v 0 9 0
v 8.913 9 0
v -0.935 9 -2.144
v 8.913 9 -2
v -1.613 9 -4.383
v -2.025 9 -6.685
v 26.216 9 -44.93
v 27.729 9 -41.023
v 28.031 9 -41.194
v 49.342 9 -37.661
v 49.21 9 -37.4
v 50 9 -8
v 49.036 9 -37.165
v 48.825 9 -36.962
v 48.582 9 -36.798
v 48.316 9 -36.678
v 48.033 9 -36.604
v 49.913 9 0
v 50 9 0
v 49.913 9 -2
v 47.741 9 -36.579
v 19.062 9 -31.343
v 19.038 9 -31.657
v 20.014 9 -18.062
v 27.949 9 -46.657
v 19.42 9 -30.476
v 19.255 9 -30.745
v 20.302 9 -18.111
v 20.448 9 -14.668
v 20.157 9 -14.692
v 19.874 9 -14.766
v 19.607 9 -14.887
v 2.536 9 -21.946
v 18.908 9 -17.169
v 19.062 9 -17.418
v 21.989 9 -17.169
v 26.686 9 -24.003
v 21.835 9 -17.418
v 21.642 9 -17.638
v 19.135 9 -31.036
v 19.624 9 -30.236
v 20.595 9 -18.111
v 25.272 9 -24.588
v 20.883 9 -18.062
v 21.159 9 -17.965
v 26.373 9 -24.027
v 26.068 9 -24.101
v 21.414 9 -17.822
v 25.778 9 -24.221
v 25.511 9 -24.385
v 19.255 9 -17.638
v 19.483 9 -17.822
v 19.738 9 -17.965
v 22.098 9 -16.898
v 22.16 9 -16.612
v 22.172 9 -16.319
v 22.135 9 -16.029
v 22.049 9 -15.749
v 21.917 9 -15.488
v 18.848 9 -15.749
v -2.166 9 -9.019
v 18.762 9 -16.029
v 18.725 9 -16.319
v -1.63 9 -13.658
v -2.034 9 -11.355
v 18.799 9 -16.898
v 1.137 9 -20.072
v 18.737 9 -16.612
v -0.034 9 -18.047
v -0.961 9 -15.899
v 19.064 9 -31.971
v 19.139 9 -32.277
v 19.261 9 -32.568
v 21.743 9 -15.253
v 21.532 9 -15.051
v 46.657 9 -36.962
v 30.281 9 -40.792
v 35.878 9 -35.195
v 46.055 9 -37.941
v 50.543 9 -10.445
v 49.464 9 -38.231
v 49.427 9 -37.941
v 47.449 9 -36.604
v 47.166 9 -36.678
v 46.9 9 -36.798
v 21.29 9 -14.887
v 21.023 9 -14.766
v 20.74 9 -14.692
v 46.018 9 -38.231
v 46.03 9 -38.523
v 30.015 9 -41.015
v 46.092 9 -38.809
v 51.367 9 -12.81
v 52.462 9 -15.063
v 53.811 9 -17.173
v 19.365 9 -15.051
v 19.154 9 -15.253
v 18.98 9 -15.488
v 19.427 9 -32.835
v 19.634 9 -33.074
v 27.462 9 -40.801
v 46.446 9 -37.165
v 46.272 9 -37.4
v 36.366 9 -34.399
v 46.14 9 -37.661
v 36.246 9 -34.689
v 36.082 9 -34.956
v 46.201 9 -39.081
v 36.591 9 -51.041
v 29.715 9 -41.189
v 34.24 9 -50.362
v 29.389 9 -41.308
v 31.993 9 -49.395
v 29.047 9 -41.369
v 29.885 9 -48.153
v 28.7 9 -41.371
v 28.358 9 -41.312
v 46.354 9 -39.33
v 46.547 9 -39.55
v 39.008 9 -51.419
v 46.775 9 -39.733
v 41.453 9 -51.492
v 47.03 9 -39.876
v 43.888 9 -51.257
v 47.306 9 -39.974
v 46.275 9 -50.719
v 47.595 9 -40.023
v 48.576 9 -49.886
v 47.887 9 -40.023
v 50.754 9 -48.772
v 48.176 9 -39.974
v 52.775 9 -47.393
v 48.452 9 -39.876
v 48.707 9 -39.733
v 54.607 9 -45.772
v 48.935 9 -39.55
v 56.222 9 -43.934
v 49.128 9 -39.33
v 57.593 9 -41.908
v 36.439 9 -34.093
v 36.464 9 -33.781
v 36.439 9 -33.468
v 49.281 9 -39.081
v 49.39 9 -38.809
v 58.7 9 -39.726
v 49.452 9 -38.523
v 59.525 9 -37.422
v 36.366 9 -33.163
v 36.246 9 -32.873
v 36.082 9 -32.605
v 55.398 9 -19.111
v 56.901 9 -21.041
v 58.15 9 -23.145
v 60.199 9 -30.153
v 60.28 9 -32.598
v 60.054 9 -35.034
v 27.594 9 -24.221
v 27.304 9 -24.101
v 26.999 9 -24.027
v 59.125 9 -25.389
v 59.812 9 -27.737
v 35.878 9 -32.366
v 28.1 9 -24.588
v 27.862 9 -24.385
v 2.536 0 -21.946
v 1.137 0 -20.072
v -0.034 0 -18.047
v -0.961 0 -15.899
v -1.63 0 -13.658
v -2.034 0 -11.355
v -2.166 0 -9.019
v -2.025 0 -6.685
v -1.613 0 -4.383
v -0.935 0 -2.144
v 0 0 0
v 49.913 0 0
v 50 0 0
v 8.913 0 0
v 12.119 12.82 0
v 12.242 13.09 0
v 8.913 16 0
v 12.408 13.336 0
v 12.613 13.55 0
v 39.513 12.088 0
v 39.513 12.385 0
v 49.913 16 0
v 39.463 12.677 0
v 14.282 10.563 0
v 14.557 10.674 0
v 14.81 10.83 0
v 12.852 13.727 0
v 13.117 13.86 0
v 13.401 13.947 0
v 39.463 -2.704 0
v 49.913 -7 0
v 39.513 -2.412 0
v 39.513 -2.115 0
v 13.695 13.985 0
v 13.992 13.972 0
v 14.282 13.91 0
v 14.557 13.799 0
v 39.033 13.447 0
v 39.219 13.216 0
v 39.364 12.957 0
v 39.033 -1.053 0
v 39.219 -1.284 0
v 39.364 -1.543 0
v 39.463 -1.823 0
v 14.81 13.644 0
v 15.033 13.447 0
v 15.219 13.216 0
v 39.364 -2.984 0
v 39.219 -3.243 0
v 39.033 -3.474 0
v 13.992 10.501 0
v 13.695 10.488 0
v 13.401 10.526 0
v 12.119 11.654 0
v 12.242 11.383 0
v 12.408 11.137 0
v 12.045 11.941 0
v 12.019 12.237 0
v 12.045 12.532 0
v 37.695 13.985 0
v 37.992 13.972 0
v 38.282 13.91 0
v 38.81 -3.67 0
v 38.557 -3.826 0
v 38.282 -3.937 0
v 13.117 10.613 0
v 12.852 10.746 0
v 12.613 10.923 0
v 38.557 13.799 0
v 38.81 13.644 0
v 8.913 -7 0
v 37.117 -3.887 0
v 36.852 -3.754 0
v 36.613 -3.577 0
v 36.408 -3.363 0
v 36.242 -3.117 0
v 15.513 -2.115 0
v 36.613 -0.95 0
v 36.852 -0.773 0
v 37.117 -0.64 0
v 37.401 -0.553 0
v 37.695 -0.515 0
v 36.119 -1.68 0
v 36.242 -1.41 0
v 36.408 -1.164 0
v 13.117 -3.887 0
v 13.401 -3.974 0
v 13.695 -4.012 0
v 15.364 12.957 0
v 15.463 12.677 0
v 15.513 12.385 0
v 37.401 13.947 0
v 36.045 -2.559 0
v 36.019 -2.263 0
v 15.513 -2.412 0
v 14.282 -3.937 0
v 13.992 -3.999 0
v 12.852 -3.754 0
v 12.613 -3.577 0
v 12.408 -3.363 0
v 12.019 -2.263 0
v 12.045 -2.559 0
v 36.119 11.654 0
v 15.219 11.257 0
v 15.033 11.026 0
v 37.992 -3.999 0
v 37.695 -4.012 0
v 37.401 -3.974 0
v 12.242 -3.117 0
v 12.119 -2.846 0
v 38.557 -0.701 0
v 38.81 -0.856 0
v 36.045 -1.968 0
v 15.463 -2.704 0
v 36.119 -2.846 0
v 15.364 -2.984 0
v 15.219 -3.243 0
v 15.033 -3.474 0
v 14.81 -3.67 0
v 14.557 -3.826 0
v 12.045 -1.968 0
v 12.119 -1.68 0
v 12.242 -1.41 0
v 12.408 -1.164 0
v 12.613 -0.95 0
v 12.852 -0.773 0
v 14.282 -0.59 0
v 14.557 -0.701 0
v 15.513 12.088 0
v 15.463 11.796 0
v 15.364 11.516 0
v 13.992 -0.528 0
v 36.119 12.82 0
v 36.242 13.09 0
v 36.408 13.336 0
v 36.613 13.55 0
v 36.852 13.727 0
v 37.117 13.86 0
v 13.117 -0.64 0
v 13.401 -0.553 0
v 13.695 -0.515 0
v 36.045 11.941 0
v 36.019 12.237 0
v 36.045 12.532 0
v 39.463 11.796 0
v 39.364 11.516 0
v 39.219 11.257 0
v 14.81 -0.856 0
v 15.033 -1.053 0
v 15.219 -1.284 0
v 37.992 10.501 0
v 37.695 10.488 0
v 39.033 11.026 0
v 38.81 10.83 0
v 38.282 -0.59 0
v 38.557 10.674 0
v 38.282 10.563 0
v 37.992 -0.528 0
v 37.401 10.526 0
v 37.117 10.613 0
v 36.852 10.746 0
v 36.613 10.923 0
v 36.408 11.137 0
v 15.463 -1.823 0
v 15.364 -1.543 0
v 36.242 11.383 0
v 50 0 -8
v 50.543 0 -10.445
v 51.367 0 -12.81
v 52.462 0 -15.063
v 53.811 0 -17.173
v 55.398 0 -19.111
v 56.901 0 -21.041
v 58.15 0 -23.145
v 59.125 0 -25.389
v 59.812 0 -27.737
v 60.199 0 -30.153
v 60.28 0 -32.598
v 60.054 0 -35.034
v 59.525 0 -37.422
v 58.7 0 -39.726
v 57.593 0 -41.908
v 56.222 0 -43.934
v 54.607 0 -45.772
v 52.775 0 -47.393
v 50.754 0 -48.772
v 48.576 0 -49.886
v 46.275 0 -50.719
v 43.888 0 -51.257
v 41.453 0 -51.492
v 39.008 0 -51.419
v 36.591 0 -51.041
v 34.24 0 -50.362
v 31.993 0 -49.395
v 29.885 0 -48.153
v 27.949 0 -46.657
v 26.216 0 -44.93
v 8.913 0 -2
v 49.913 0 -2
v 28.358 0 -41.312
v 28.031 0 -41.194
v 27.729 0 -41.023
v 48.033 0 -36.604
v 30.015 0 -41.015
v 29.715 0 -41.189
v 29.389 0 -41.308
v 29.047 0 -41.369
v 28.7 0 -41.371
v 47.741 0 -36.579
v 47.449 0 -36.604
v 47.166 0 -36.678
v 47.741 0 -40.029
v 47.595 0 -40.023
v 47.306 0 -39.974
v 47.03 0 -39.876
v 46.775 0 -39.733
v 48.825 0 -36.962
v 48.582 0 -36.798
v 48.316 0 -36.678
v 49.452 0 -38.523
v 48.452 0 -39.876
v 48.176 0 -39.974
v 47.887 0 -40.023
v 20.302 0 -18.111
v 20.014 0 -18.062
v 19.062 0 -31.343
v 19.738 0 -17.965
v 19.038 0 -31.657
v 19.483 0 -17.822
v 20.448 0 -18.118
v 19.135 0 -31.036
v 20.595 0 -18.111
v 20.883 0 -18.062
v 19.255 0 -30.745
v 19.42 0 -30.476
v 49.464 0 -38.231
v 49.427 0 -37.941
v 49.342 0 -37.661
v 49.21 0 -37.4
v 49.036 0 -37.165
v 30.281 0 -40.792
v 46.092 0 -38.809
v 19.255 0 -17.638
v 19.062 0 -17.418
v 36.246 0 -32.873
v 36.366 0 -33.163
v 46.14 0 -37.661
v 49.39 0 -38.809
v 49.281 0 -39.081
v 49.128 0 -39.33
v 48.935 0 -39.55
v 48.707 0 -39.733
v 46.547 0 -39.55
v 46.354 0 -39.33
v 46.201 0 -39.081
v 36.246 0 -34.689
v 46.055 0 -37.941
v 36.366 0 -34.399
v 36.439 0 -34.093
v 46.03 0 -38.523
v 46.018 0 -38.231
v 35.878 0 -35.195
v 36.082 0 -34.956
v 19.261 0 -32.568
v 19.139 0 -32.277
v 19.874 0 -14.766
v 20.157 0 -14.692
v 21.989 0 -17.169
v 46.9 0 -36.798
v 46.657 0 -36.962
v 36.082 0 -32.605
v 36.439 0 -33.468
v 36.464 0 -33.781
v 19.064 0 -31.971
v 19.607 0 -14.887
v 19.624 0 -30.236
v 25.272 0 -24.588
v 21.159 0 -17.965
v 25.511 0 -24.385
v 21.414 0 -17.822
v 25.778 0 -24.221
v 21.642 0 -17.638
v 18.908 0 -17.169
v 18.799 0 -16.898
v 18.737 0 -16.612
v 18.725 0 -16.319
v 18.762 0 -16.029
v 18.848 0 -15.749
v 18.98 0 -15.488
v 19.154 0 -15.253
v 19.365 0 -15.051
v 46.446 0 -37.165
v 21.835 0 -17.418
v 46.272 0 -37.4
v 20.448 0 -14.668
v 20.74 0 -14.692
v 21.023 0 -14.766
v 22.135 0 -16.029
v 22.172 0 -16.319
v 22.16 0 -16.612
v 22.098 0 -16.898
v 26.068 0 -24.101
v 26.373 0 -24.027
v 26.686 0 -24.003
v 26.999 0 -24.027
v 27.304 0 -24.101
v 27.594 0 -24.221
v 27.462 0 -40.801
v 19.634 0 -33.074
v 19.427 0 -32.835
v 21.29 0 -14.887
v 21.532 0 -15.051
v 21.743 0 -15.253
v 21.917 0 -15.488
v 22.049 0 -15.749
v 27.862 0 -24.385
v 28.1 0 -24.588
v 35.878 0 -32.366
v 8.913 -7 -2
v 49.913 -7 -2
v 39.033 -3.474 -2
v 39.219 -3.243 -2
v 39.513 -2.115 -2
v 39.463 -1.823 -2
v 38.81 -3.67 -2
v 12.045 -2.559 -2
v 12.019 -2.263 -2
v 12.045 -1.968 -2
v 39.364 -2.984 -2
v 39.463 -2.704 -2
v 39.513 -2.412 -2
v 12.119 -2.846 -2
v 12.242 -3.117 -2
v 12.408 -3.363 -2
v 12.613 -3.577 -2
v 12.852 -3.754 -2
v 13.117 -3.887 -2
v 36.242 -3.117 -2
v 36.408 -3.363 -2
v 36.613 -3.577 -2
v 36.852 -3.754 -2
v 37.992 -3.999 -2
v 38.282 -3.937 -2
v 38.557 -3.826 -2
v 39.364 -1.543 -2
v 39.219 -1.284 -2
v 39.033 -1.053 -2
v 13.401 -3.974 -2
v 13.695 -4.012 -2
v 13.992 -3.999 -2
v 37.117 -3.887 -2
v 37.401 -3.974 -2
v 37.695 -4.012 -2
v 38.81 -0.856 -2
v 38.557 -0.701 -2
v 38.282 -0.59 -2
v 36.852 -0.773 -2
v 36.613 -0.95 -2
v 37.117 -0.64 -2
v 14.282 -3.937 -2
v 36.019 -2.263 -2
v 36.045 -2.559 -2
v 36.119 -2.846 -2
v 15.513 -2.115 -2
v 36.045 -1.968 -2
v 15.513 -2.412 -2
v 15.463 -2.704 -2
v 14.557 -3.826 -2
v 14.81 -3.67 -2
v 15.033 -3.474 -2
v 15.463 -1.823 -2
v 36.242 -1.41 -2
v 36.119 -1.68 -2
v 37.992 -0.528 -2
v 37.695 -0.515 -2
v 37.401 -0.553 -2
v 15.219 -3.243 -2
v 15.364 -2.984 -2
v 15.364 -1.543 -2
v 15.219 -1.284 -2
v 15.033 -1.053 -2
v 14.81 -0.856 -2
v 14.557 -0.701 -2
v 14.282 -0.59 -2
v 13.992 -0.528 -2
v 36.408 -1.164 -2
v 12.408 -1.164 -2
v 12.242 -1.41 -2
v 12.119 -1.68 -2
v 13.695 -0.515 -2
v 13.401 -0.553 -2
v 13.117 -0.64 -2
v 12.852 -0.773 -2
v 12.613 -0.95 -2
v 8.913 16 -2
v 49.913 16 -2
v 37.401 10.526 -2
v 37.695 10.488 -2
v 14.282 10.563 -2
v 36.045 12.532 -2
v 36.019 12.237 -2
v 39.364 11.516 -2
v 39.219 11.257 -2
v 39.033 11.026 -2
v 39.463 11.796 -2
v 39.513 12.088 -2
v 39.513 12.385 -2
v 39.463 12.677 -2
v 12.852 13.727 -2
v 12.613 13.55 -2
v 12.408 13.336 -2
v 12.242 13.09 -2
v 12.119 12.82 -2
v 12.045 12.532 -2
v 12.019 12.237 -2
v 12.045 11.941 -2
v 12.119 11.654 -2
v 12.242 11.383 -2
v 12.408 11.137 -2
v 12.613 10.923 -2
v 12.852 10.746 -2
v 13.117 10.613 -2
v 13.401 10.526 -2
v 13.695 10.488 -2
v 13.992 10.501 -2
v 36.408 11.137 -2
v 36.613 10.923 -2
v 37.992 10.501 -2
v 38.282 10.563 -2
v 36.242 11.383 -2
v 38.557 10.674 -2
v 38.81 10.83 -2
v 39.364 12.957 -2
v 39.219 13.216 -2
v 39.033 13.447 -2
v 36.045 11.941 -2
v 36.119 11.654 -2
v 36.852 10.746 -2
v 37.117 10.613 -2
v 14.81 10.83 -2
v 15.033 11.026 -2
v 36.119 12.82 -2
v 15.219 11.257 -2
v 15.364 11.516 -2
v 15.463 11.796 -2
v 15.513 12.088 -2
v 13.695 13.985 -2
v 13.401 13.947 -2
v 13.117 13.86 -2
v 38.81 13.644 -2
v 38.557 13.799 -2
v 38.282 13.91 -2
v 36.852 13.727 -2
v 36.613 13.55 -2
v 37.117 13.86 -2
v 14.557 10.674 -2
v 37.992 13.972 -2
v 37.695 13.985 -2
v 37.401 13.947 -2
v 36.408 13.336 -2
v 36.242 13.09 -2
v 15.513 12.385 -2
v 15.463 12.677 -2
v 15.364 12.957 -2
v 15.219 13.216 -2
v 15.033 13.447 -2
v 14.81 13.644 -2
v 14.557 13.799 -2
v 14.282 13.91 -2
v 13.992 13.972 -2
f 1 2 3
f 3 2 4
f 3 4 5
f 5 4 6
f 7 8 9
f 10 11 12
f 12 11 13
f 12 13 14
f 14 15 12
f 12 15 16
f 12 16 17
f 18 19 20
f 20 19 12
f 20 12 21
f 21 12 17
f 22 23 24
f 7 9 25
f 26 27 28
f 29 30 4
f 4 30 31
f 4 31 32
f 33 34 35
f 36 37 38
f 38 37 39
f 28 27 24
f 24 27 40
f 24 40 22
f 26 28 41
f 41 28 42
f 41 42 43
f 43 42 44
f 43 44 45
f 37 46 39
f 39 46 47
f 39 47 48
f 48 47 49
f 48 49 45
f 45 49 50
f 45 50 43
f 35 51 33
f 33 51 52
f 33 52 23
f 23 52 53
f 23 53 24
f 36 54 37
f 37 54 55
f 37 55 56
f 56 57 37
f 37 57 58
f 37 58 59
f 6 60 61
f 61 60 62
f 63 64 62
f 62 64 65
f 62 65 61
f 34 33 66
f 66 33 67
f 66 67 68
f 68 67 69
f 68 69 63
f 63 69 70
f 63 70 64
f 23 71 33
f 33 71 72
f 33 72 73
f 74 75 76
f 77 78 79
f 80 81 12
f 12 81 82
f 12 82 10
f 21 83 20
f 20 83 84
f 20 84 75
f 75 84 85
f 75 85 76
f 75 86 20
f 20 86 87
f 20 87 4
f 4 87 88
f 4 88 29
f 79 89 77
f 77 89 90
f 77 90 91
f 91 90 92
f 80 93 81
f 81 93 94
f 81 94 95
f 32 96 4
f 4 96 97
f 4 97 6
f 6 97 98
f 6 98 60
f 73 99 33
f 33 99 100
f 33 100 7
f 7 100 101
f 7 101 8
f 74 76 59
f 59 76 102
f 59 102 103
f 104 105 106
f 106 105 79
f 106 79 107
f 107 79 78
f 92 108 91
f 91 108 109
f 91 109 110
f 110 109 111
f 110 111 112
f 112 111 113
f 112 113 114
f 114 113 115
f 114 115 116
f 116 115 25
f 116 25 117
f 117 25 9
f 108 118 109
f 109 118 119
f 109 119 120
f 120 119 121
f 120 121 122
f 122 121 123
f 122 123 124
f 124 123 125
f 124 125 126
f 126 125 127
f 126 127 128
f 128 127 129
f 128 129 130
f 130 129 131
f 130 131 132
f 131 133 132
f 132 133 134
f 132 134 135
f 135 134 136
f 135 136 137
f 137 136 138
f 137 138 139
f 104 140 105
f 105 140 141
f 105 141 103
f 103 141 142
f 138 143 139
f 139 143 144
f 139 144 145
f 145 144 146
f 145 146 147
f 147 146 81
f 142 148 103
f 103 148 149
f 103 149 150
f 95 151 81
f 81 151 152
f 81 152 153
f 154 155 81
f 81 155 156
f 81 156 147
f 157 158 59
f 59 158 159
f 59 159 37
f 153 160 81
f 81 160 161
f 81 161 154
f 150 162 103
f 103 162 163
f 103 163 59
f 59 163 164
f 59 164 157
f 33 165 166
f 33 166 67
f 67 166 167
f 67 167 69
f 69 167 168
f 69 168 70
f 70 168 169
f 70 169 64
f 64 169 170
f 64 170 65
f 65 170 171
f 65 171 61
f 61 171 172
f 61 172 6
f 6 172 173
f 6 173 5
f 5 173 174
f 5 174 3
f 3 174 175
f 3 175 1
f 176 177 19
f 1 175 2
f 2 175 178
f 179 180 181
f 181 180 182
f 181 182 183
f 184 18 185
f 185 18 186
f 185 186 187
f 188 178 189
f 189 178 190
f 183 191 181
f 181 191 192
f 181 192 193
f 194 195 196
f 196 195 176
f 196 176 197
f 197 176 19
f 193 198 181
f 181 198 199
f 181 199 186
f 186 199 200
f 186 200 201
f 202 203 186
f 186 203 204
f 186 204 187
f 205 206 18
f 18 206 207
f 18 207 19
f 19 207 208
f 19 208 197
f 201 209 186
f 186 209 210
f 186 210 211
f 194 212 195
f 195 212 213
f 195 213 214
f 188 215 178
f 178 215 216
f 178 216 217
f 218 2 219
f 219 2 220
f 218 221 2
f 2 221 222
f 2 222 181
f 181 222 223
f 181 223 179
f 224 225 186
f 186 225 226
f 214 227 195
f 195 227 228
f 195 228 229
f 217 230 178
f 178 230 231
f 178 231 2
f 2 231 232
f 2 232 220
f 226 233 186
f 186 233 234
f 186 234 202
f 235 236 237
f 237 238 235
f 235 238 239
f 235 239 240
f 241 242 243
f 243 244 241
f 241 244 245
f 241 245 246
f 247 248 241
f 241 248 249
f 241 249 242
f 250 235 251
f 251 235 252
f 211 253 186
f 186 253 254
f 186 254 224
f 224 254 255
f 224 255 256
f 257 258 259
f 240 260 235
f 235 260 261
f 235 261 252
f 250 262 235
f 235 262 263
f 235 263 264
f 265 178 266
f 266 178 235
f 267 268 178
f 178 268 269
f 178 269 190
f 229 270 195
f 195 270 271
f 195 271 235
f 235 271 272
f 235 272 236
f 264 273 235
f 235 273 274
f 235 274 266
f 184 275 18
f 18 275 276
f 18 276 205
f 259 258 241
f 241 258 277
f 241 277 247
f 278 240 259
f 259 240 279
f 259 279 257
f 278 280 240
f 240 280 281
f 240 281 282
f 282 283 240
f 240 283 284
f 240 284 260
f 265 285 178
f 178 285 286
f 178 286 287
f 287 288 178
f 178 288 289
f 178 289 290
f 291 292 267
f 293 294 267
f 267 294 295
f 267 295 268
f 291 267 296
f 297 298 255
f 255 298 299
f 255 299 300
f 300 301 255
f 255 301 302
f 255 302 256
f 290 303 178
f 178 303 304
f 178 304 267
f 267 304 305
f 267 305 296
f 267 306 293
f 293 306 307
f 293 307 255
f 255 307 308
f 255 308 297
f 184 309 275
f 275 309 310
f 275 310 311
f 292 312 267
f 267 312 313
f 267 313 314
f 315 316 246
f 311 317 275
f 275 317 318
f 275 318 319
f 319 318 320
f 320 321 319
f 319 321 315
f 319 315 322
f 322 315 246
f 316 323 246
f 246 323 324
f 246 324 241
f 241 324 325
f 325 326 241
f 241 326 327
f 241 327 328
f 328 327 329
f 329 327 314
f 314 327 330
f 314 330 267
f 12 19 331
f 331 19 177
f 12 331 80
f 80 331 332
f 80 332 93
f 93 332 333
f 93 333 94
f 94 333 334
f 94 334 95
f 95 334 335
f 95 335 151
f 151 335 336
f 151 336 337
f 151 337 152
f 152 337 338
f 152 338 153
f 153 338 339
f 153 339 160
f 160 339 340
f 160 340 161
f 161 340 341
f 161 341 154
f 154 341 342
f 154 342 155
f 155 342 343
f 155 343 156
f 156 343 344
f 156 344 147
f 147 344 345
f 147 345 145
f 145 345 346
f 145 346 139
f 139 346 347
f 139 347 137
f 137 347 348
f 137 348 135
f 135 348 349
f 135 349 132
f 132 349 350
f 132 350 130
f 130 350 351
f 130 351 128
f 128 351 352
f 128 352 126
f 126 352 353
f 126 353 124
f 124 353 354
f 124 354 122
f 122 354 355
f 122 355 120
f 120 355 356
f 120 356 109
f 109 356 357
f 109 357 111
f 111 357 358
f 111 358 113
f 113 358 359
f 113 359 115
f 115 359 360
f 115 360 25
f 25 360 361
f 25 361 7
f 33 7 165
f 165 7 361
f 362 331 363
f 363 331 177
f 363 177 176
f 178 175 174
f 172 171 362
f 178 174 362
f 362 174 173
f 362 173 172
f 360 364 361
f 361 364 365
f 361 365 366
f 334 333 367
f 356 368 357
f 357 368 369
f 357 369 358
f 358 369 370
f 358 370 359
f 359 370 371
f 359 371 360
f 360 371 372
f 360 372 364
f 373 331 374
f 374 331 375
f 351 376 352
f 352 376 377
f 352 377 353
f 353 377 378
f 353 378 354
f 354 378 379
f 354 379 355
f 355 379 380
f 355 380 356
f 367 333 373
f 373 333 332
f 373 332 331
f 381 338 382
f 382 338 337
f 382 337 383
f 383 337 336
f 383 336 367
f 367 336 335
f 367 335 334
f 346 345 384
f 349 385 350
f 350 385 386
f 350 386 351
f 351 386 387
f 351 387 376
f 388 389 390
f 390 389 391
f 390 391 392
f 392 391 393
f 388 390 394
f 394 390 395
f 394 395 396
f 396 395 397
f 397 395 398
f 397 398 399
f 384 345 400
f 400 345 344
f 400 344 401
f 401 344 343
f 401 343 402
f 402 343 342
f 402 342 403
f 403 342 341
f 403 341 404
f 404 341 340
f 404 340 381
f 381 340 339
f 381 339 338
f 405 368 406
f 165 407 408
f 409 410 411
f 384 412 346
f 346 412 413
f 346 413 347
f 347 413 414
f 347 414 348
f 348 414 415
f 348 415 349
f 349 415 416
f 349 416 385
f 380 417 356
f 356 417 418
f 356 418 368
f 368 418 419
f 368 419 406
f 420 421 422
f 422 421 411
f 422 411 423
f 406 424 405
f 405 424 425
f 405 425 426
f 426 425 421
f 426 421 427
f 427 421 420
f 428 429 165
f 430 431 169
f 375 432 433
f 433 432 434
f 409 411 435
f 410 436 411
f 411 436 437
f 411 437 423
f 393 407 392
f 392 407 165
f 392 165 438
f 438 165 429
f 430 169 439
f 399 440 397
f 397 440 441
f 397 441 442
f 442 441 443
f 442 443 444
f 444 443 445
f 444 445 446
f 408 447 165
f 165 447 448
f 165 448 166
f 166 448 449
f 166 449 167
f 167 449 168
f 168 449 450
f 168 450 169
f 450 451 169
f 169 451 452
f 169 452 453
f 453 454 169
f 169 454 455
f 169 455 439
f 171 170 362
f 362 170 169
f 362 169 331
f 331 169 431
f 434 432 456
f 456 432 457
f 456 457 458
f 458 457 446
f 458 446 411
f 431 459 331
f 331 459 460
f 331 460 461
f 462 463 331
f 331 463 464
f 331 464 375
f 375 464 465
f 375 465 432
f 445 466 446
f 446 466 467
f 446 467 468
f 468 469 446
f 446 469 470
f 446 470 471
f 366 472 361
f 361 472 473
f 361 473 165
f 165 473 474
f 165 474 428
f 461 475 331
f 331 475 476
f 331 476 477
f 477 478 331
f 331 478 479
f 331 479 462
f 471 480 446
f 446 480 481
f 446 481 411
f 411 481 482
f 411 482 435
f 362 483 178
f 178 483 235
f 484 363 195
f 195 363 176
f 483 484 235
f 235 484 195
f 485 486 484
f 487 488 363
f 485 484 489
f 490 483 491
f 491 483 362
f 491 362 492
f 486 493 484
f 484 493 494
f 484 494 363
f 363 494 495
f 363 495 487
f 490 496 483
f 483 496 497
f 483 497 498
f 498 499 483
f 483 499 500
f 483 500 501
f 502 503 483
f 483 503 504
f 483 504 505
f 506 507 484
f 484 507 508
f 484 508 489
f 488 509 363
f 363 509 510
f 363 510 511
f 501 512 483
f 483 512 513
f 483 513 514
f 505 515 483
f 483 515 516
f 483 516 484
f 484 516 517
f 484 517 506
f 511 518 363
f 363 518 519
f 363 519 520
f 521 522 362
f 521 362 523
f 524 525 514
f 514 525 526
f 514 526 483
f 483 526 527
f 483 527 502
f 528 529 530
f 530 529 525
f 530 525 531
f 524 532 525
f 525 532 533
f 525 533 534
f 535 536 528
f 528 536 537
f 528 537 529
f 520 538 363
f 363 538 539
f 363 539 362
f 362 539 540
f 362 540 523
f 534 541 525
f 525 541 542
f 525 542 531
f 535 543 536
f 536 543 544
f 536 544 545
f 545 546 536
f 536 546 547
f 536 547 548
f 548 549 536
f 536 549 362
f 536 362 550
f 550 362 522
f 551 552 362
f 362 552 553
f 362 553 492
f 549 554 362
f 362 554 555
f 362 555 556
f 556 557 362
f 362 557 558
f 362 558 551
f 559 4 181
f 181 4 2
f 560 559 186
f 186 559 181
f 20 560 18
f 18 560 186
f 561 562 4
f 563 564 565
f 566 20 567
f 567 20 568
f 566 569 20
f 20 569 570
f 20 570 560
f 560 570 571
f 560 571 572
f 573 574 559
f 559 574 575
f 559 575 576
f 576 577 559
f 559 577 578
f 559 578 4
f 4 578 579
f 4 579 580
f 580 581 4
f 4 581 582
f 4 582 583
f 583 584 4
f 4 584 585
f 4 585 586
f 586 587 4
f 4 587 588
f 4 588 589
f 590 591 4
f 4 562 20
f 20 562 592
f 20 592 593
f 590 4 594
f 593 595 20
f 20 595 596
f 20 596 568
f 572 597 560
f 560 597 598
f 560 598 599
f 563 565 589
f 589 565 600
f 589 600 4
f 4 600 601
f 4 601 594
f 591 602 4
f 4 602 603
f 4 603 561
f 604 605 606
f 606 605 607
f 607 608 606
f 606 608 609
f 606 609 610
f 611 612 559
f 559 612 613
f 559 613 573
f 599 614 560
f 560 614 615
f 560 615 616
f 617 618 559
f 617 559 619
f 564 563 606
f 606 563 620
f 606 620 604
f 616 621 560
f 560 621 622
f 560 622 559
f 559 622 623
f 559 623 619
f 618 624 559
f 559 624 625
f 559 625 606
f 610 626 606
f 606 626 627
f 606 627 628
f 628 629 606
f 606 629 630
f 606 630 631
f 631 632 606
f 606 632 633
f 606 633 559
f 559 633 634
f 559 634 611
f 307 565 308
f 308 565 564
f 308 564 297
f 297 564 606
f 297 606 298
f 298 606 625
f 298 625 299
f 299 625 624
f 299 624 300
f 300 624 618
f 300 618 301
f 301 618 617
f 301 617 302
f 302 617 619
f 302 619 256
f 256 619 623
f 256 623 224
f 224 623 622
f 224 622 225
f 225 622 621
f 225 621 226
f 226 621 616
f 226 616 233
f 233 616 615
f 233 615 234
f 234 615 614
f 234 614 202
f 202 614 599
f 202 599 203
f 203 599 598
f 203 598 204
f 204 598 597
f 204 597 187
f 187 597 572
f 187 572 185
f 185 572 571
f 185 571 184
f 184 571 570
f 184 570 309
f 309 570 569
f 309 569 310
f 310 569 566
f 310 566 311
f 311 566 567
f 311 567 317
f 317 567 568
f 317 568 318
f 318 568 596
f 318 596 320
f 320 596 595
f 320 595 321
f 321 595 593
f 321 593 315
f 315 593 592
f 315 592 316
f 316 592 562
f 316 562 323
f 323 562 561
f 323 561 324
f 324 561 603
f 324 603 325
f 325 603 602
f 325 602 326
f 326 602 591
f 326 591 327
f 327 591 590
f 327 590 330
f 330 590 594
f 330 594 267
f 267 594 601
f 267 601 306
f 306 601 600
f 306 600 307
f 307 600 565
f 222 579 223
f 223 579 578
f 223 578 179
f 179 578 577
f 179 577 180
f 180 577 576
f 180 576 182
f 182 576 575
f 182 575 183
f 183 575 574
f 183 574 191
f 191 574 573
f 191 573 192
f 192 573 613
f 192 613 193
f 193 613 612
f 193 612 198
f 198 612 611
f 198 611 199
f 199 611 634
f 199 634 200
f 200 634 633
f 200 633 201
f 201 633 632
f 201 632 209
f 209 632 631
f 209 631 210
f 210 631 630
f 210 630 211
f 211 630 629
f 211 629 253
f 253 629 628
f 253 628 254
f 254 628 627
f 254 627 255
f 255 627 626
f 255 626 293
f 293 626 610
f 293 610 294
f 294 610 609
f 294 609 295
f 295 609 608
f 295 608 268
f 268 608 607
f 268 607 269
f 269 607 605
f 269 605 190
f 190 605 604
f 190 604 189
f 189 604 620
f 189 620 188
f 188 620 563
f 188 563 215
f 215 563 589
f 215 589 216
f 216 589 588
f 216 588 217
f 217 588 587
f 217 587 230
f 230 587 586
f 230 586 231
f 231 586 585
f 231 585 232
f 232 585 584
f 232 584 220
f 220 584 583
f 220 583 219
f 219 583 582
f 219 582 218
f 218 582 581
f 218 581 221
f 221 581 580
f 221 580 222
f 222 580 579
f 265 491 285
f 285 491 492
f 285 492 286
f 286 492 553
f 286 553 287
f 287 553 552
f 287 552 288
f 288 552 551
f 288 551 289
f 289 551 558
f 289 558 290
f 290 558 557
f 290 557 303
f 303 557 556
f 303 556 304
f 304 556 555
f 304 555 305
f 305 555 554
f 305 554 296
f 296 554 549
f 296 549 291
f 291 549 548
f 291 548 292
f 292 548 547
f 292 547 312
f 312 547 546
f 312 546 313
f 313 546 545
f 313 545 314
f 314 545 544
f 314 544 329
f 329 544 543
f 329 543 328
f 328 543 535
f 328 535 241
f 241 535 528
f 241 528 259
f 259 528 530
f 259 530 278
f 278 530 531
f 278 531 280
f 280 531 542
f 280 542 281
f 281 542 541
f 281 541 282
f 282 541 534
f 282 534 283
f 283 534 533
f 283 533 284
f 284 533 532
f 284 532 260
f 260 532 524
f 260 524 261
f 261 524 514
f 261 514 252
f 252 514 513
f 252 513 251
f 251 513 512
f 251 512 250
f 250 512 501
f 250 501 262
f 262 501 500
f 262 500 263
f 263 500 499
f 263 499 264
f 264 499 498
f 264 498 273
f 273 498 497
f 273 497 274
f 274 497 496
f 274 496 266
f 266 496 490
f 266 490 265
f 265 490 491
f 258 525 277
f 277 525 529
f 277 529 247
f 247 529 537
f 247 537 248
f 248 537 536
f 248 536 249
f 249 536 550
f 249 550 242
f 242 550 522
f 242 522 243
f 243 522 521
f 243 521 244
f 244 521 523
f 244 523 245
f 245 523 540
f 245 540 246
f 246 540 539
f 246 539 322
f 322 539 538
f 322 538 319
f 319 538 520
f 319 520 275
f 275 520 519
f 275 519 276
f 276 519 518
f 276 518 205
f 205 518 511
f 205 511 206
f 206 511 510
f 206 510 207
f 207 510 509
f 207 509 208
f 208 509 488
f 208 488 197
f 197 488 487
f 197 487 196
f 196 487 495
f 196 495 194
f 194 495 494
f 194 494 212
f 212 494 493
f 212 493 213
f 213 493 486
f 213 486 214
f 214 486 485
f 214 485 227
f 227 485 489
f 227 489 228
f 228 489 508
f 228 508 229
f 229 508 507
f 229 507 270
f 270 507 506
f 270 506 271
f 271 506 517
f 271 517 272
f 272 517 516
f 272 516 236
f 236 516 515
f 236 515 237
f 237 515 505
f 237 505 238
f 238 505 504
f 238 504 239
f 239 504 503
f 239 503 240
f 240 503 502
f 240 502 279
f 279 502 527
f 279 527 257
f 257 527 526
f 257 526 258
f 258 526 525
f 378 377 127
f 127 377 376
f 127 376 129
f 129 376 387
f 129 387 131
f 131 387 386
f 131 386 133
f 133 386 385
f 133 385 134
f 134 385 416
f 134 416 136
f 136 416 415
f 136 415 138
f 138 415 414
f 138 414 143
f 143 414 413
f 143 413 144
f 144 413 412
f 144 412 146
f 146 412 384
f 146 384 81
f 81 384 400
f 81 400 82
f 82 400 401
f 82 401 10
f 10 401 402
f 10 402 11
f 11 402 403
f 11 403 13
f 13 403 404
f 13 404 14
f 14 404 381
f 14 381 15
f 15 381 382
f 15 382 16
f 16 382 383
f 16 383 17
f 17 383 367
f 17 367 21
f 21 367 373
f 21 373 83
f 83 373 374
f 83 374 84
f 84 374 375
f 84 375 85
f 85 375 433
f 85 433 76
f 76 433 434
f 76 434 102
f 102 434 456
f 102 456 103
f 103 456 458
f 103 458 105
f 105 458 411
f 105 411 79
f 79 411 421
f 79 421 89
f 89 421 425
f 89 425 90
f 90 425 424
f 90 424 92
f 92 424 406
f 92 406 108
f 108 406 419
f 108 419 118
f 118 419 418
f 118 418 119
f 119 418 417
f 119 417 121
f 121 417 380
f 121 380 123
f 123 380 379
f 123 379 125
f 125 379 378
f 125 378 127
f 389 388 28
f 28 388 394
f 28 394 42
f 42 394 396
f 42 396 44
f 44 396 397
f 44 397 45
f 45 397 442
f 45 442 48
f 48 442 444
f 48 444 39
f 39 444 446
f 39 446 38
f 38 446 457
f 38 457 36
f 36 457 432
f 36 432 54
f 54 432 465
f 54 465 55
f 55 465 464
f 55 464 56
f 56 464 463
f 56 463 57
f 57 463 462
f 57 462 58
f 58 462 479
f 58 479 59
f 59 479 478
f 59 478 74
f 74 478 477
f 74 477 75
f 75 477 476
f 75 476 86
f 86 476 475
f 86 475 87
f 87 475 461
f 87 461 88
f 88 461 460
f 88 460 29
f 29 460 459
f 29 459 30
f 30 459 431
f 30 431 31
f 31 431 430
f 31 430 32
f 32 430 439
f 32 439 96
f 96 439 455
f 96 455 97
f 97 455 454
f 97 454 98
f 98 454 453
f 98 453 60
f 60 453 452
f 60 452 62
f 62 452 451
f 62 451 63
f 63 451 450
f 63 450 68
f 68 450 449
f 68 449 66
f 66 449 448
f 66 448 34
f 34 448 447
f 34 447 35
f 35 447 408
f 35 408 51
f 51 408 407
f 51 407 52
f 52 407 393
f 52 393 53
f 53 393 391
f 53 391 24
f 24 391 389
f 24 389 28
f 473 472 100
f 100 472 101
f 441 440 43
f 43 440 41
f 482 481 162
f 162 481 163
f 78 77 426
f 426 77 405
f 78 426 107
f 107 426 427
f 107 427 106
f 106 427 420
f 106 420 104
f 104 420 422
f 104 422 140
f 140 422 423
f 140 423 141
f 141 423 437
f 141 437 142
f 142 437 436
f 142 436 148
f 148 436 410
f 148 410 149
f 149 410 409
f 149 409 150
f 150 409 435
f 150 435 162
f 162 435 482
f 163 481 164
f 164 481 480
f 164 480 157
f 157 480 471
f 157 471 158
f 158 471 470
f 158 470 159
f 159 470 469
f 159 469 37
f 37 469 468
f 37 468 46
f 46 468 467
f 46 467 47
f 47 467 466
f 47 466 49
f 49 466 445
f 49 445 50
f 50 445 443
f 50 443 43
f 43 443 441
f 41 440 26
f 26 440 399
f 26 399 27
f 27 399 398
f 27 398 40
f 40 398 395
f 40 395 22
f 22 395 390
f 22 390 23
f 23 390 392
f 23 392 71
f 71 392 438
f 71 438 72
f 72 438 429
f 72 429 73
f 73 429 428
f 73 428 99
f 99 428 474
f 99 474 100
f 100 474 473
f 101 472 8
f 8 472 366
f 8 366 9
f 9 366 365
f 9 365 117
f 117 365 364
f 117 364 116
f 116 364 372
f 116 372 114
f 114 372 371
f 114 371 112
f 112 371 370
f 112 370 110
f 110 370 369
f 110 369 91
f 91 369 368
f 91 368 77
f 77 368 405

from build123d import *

# Parameters (mm, degrees)
BOSS_EXTRUDE1_DEPTH = 9
SKETCH2_W           = 41
SKETCH2_H           = 7
BOSS_EXTRUDE2_DEPTH = 2
SKETCH3_R           = 1.75
CUT_EXTRUDE1_DEPTH  = 2
SKETCH5_R           = 1.725
CUT_EXTRUDE4_DEPTH  = 9
CUT_EXTRUDE5_DEPTH  = 9
FILLET1_R           = 2


with BuildPart() as part:
    # Sketch1 → Boss-Extrude1 (new body)
    with BuildSketch(Plane(origin=(0, 0, 0), x_dir=(1, 0, 0), z_dir=(0, 1, 0))):
        with BuildLine():
            Line((0, 0), (50, 0))
            Line((50, 0), (50, 8))
            ThreePointArc((50, 8), (51.881677867, 13.952299325), (55.397568431, 19.110699502))
            ThreePointArc((55.397568431, 19.110699502), (53.716316301, 46.611180772), (26.21583503, 44.929928642))
            Line((26.21583503, 44.929928642), (2.535645118, 21.946269105))
            ThreePointArc((2.535645118, 21.946269105), (-2.034097015, 11.354634306), (0, 0))
        make_face()
    extrude(amount=BOSS_EXTRUDE1_DEPTH)

    # Sketch2 → Boss-Extrude2 (add)
    with BuildSketch(Plane.XY):
        with Locations((29.413010925, -3.5)):
            Rectangle(SKETCH2_W, SKETCH2_H)
        with Locations((29.413010925, 12.5)):
            Rectangle(SKETCH2_W, SKETCH2_H)
    extrude(amount=-BOSS_EXTRUDE2_DEPTH)

    # Sketch3 → Cut-Extrude1 (cut)
    with BuildSketch(Plane(origin=(0, 0, -2), x_dir=(-1, 0, 0), z_dir=(0, 0, -1))):
        with Locations((-13.769448398, -2.263474859)):
            Circle(SKETCH3_R)
        with Locations((-37.769448398, -2.263474859)):
            Circle(SKETCH3_R)
        with Locations((-37.769448398, 12.236525141)):
            Circle(SKETCH3_R)
        with Locations((-13.769448398, 12.236525141)):
            Circle(SKETCH3_R)
    extrude(amount=-CUT_EXTRUDE1_DEPTH, mode=Mode.SUBTRACT)

    # Sketch5 → Cut-Extrude4 (cut)
    with BuildSketch(Plane(origin=(0, 9, 0), x_dir=(1, 0, 0), z_dir=(0, 1, 0))):
        with Locations(Location((20.448484722, 16.392658608, 0), (0, 0, 270))):
            Circle(SKETCH5_R)
        with Locations(Location((47.74101634, 38.304247275, 0), (0, 0, 270))):
            Circle(SKETCH5_R)
    extrude(amount=-CUT_EXTRUDE4_DEPTH, mode=Mode.SUBTRACT)

    # Sketch6 → Cut-Extrude5 (cut)
    with BuildSketch(Plane(origin=(0, 9, 0), x_dir=(1, 0, 0), z_dir=(0, 1, 0))):
        Polygon((18.200821257, 31.659530408), (28.87624988, 42.196855672), (37.292479574, 33.780625977), (26.686102631, 23.174249034), align=None)
    extrude(amount=-CUT_EXTRUDE5_DEPTH, mode=Mode.SUBTRACT)

    # Fillet1
    fillet1_edges = [part.edges().sort_by_distance(p)[0] for p in [
        (18.200821257, 4.5, -31.659530408),
        (26.686102631, 4.5, -23.174249034),
        (37.292479574, 4.5, -33.780625977),
        (28.87624988, 4.5, -42.196855672),
    ]]
    fillet(fillet1_edges, radius=FILLET1_R)


solid = part.part
